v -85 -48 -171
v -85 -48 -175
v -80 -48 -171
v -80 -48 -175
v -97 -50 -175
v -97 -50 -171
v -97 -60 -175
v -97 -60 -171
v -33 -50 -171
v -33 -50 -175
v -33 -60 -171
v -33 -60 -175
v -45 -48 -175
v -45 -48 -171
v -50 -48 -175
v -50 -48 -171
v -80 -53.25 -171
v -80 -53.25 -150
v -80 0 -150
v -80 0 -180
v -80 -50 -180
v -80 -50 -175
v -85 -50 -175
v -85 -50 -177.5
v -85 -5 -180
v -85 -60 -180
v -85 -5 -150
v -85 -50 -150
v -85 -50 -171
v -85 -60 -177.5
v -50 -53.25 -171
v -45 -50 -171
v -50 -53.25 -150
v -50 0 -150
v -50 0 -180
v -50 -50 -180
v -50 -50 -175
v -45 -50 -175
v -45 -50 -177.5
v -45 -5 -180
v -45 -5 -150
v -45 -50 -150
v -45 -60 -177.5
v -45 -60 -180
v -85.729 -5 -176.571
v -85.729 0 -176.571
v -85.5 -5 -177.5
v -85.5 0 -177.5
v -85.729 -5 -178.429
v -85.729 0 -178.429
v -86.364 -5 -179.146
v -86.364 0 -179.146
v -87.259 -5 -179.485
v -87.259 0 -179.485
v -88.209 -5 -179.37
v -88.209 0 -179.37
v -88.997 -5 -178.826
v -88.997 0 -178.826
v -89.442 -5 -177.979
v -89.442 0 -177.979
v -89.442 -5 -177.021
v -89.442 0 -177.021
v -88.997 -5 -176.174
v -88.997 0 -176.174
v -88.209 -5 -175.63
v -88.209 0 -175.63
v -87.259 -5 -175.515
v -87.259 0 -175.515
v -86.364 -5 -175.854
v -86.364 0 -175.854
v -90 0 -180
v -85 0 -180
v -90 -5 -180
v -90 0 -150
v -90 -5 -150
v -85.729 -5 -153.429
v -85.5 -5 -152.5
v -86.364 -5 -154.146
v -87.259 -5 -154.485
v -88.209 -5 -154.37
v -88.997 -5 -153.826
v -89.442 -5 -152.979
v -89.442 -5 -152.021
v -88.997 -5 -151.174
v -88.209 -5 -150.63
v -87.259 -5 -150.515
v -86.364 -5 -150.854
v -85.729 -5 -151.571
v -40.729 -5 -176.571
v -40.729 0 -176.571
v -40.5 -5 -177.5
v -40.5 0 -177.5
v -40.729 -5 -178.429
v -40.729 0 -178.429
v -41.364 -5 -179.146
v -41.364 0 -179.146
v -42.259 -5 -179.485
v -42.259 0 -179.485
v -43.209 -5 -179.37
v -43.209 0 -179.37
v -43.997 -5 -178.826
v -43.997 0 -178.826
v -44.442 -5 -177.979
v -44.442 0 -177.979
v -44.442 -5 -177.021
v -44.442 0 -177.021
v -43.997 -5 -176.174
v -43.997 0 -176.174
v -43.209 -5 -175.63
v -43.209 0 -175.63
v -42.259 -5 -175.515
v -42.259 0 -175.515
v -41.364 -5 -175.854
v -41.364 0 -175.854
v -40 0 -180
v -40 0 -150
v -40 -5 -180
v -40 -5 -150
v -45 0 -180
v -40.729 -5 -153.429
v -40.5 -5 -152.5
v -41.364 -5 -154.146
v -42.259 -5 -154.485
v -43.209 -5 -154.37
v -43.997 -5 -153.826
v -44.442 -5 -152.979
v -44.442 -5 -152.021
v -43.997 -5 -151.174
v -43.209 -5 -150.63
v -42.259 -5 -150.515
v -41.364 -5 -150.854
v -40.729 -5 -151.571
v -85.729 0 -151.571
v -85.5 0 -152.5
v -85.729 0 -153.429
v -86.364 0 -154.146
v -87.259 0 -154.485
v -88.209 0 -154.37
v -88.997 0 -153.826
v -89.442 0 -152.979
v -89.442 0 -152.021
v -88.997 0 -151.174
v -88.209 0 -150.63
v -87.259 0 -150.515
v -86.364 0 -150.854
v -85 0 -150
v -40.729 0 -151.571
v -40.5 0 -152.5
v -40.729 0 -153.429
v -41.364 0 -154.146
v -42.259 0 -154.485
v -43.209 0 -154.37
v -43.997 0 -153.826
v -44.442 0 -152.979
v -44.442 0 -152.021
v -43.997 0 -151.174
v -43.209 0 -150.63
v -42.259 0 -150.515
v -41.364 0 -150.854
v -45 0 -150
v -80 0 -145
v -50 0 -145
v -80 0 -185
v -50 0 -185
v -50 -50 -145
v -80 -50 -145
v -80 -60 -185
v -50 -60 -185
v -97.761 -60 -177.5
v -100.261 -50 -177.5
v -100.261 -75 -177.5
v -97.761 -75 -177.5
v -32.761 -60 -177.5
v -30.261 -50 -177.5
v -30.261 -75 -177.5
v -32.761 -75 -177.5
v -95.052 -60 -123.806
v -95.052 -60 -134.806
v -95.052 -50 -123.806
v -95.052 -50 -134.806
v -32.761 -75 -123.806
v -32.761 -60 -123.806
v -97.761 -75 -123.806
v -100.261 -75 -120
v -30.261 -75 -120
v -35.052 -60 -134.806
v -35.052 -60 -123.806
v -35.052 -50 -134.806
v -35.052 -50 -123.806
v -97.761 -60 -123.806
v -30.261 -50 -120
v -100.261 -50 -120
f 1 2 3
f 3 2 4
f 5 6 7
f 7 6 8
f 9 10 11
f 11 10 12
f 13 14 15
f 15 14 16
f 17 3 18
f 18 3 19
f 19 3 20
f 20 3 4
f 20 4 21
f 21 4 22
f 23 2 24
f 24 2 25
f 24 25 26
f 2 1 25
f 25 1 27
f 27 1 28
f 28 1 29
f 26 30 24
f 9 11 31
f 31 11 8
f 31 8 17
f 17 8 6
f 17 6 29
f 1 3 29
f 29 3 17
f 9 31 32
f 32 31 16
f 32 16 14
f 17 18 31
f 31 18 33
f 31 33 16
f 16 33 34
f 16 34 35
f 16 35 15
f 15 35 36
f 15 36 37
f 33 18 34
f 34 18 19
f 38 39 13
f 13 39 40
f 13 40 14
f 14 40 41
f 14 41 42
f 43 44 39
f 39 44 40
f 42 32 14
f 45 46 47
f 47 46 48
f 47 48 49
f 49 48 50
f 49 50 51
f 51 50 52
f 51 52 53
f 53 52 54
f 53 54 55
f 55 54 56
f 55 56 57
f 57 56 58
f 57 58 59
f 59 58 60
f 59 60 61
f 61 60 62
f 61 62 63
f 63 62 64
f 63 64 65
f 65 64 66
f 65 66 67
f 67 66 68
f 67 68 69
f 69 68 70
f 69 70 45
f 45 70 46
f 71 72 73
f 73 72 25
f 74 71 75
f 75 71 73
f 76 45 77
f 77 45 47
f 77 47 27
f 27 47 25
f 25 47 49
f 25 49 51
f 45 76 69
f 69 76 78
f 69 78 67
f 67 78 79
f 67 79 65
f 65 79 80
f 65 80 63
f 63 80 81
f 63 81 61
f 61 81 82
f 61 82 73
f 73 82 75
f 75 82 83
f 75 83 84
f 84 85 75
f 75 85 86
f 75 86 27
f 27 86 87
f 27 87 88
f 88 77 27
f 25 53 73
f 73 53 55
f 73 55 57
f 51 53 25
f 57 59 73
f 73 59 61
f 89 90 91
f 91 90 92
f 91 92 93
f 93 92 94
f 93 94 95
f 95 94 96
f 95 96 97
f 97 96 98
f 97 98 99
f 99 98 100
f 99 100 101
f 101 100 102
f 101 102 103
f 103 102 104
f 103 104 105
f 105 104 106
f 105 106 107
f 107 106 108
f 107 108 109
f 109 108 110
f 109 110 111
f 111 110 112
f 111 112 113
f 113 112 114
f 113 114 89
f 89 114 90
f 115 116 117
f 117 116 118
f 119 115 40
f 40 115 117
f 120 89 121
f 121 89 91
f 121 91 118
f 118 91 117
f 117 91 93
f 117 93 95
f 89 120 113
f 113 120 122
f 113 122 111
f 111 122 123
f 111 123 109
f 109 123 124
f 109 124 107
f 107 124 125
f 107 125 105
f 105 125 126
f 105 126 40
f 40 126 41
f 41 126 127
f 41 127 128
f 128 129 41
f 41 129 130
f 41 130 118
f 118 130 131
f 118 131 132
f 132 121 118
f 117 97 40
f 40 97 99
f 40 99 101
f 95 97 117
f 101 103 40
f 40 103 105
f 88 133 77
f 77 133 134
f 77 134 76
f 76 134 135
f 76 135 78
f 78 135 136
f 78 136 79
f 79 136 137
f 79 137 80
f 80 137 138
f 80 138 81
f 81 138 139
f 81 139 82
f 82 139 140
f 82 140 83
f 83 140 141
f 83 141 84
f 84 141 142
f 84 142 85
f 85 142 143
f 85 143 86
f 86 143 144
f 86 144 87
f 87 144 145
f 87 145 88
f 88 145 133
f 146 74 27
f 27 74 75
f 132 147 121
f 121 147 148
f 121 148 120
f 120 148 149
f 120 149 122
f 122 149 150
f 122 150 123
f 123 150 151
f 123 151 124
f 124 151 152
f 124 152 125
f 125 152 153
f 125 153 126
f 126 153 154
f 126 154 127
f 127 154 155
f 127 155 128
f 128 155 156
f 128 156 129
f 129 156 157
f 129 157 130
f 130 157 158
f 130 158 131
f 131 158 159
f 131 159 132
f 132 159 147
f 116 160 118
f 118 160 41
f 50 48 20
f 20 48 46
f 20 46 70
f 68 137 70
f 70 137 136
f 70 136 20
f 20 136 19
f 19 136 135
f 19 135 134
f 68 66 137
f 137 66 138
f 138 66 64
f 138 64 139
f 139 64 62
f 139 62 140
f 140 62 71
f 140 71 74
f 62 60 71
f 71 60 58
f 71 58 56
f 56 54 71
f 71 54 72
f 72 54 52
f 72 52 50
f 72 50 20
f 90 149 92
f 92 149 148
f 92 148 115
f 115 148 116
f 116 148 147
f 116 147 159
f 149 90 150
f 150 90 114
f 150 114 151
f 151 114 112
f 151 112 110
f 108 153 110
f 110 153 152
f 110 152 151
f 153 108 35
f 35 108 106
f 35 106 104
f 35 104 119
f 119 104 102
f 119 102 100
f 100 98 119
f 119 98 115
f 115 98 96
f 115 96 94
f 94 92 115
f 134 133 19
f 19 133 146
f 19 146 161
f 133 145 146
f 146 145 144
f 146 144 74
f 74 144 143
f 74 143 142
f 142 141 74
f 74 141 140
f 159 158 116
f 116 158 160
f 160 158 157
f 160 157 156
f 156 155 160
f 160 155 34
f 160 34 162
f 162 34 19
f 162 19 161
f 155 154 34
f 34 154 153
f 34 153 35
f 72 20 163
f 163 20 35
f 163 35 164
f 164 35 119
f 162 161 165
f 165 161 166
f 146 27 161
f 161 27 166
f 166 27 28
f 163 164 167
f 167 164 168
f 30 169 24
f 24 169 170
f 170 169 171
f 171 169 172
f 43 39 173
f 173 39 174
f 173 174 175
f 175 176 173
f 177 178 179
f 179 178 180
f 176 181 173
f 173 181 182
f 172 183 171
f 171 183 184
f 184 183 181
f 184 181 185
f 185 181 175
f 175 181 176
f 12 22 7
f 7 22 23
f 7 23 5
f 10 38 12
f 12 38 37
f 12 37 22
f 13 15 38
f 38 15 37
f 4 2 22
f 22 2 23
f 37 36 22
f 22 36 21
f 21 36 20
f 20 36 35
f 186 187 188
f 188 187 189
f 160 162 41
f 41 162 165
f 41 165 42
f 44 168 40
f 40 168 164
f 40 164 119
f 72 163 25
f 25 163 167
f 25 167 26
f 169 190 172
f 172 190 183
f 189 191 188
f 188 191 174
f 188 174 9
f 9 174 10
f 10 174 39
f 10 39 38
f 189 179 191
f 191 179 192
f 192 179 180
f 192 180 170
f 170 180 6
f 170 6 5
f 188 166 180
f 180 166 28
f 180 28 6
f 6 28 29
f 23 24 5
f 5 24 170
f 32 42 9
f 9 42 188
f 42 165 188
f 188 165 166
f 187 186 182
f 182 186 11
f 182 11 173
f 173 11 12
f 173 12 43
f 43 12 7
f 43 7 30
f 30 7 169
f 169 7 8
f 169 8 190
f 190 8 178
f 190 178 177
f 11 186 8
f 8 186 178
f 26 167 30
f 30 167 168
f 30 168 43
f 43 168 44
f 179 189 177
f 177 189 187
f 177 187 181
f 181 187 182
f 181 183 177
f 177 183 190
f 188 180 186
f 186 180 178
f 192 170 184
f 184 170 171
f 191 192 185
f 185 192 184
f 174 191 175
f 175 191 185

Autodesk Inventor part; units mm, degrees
ref_plane "YZ Plane" through (0, 0, 0) normal (1, 0, 0) x (0, 1, 0)
sketch "Boceto1" plane through (0, 0, 0) normal (0, 1, 0) x (-1, 0, 0)
  line L0 (0, 0) -> (0, -154)
  line L1 (35, -185) -> (95, -185)
  line L2 (130, -154) -> (130, 0)
  line L3 (130, 0) -> (0, 0)
  line L4 (0, 0) -> (0, -154) construction
  line L5 (65, -185) -> (95, -185) construction
  line L6 (95, -185) -> (95, -206.4869) construction
  line L7 (95, -206.4869) -> (35, -206.4869) construction
  line L8 (35, -206.4869) -> (35, -185) construction
  line L9 (0, -154) -> (35, -185)
  line L10 (95, -185) -> (130, -154)
  line L11 (61.4516, 0) -> (61.4516, -5) construction
  line L12 (130, -81.3037) -> (125, -81.3037) construction
  line L13 (0, -85.0807) -> (5, -85.0807) construction
  line L14 (125, -5) -> (5, -5)
  line L15 (5, -5) -> (5, -148.3548)
  line L16 (125, -148.3548) -> (125, -5)
  line L17 (112.5, -169.5) -> (109.1848, -165.7571) construction
  line L18 (65, -185) -> (65, -180) construction
  line L19 (17.5, -169.5) -> (20.8152, -165.7571) construction
  line L20 (20.8152, -165.7571) -> (5, -151.7493)
  line L21 (20.8152, -165.7571) -> (36.8959, -180)
  line L22 (36.8959, -180) -> (93.1041, -180)
  line L23 (93.1041, -180) -> (125, -151.7493)
  line L24 (125, -151.7493) -> (125, -148.3548)
  line L25 (5, -148.3548) -> (5, -151.7493)
  dimension "d2" = 154
  dimension "d3" = 30
  dimension "d4" = 60
  dimension "d5" = 5
  dimension "d6" = 5
  dimension "d7" = 5
  dimension "d8" = 5
  dimension "d9" = 5
  dimension "d10" = 5
extrude "Extrusión1" add sketch "Boceto1" along normal blind 3 contours L16 L24 L23 L22 L21 L20 L25 L15 L14
extrude "Extrusión2" add sketch "Boceto1" along normal blind 35
ref_plane "Plano de trabajo1" through (0, 20, 0) normal (0, 1, 0) x (-1, 0, 0)
sketch "Boceto2" plane through (0, 20, 0) normal (0, 1, 0) x (-1, 0, 0)
  line L0 (0, 0) -> (0, -154) construction
  line L1 (0, 0) -> (0, -26.749) construction
  line L2 (130, -154) -> (130, 0) construction
  line L3 (125, -151.7493) -> (93.1041, -180) construction
  line L4 (125, -151.7493) -> (5, -151.7493) construction
  line L5 (65, -151.7493) -> (65, -26.749) construction
  line L6 (125, -89.2492) -> (5, -89.2492) construction
  line L7 (5, -151.7493) -> (5, -5) construction
  line L8 (125, -26.749) -> (125, -31.749) construction
  line L9 (125, -31.749) -> (120, -31.749) construction
  line L10 (120, -31.749) -> (120, -26.749) construction
  line L11 (125, -31.749) -> (120, -26.749) construction
  line L12 (120, -31.749) -> (125, -26.749) construction
  line L13 (125, -31.749) -> (125, -26.749)
  arc A0 (120, -26.749) -> (125, -31.749) centre (122.5, -29.249) ccw
  line L14 (5, -26.749) -> (5, -31.749) construction
  line L15 (5, -31.749) -> (5, -26.749)
  arc A1 (5, -31.749) -> (10, -26.749) centre (7.5, -29.249) ccw
  arc A2 (125, -26.749) -> (120.5, -32.1645) centre (122.5, -29.249) ccw
  arc A3 (10.6306, -27.606) -> (5, -26.749) centre (7.5, -29.249) ccw
  line L16 (5, -26.749) -> (5, -173.4983) construction
  line L17 (125, -151.7493) -> (125, -146.7493) construction
  line L18 (120, -146.7493) -> (125, -151.7493) construction
  line L19 (125, -146.7493) -> (125, -151.7493)
  arc A4 (125, -146.7493) -> (120, -151.7493) centre (122.5, -149.2493) ccw
  arc A5 (10, -151.7493) -> (5, -146.7493) centre (7.5, -149.2493) ccw
  line L20 (5, -151.7493) -> (5, -146.7493) construction
  line L21 (5, -146.7493) -> (5, -151.7493)
  arc A6 (120.5, -146.3339) -> (125, -151.7493) centre (122.5, -149.2493) ccw
  arc A7 (5, -151.7493) -> (10.6306, -150.8923) centre (7.5, -149.2493) ccw
  circle A8 centre (7.5, -29.249) radius 2.5
  circle A9 centre (122.5, -29.249) radius 2.5
  circle A10 centre (122.5, -149.2493) radius 2.5
  circle A11 centre (7.5, -149.2493) radius 2.5
  point P0 (10, -151.7493)
  point P1 (10, -26.749)
  point P2 (120, -26.749)
  dimension "d16" = 26.749
  dimension "d43" = 5
  dimension "d44" = 5
  dimension "d45" = 5
  dimension "d46" = 5
extrude "Extrusión3" add sketch "Boceto2" against normal blind 17 contours A9 | A0 A2 L13 | A8 | L15 A3 A1 | A10 | L19 A6 A4 | A11 | A7 L21 A5
extrude "Extrusión4" cut sketch "Boceto2" against normal through all contours A9 | A8 | A10 | A11
sketch "Boceto3" plane through (0, 3, 0) normal (0, 1, 0) x (1, 0, 0)
  line L0 (-125, 5) -> (-5, 5) construction
  line L1 (-65, 5) -> (-110, 5) construction
  line L2 (-110, 5) -> (-110, 15) construction
  line L3 (-110, 15) -> (-20, 15)
  line L4 (-20, 15) -> (-20, 139.5644)
  line L5 (-110, 139.5644) -> (-110, 15)
  line L6 (-106.9205, 15) -> (-103.9205, 15)
  line L7 (-20, 139.5644) -> (-20, 15)
  line L8 (-110, 15) -> (-20, 15)
  line L9 (-110, 15) -> (-110, 139.5644)
  line L10 (-83.4405, 15) -> (-81.4405, 15)
  line L11 (-77.5705, 15) -> (-75.5705, 15)
  line L12 (-87.3105, 15) -> (-89.3105, 15)
  line L13 (-93.1805, 15) -> (-95.1805, 15)
  line L14 (-98.0505, 15) -> (-100.0505, 15)
  line L15 (-103.9205, 15) -> (-106.9205, 15)
  line L16 (-71.7005, 15) -> (-69.7005, 15)
  line L17 (-65.8305, 15) -> (-63.8305, 15)
  line L18 (-59.9605, 15) -> (-57.9605, 15)
  line L19 (-54.0905, 15) -> (-52.0905, 15)
  line L20 (-48.2205, 15) -> (-46.2205, 15)
  line L21 (-42.3505, 15) -> (-40.3505, 15)
  line L22 (-36.4805, 15) -> (-34.4805, 15)
  line L23 (-30.6105, 15) -> (-28.6105, 15)
  line L24 (-24.7405, 15) -> (-22.7405, 15)
  line L25 (-35, 185) -> (-95, 185) projected
  line L26 (-20, 139.5644) -> (-110, 139.5644)
  line L27 (-103.9205, 15) -> (-103.9205, 139.5644)
  line L28 (-106.9205, 139.5644) -> (-106.9205, 15)
  line L29 (-100.9205, 15) -> (-100.9205, 139.5644)
  line L30 (-103.9205, 139.5644) -> (-103.9205, 15)
  line L31 (-97.9205, 15) -> (-97.9205, 139.5644)
  line L32 (-100.9205, 139.5644) -> (-100.9205, 15)
  line L33 (-94.9205, 15) -> (-94.9205, 139.5644)
  line L34 (-97.9205, 139.5644) -> (-97.9205, 15)
  line L35 (-91.9205, 15) -> (-91.9205, 139.5644)
  line L36 (-94.9205, 139.5644) -> (-94.9205, 15)
  line L37 (-88.9205, 15) -> (-88.9205, 139.5644)
  line L38 (-91.9205, 139.5644) -> (-91.9205, 15)
  line L39 (-85.9205, 15) -> (-85.9205, 139.5644)
  line L40 (-88.9205, 139.5644) -> (-88.9205, 15)
  line L41 (-82.9205, 15) -> (-82.9205, 139.5644)
  line L42 (-85.9205, 139.5644) -> (-85.9205, 15)
  line L43 (-79.9205, 15) -> (-79.9205, 139.5644)
  line L44 (-82.9205, 139.5644) -> (-82.9205, 15)
  line L45 (-76.9205, 15) -> (-76.9205, 139.5644)
  line L46 (-79.9205, 139.5644) -> (-79.9205, 15)
  line L47 (-73.9205, 15) -> (-73.9205, 139.5644)
  line L48 (-76.9205, 139.5644) -> (-76.9205, 15)
  line L49 (-70.9205, 15) -> (-70.9205, 139.5644)
  line L50 (-73.9205, 139.5644) -> (-73.9205, 15)
  line L51 (-67.9205, 15) -> (-67.9205, 139.5644)
  line L52 (-70.9205, 139.5644) -> (-70.9205, 15)
  line L53 (-64.9205, 15) -> (-64.9205, 139.5644)
  line L54 (-67.9205, 139.5644) -> (-67.9205, 15)
  line L55 (-61.9205, 15) -> (-61.9205, 139.5644)
  line L56 (-64.9205, 139.5644) -> (-64.9205, 15)
  line L57 (-58.9205, 15) -> (-58.9205, 139.5644)
  line L58 (-61.9205, 139.5644) -> (-61.9205, 15)
  line L59 (-55.9205, 15) -> (-55.9205, 139.5644)
  line L60 (-58.9205, 139.5644) -> (-58.9205, 15)
  line L61 (-52.9205, 15) -> (-52.9205, 139.5644)
  line L62 (-55.9205, 139.5644) -> (-55.9205, 15)
  line L63 (-49.9205, 15) -> (-49.9205, 139.5644)
  line L64 (-52.9205, 139.5644) -> (-52.9205, 15)
  line L65 (-46.9205, 15) -> (-46.9205, 139.5644)
  line L66 (-49.9205, 139.5644) -> (-49.9205, 15)
  line L67 (-43.9205, 15) -> (-43.9205, 139.5644)
  line L68 (-46.9205, 139.5644) -> (-46.9205, 15)
  line L69 (-40.9205, 15) -> (-40.9205, 139.5644)
  line L70 (-43.9205, 139.5644) -> (-43.9205, 15)
  line L71 (-37.9205, 15) -> (-37.9205, 139.5644)
  line L72 (-40.9205, 139.5644) -> (-40.9205, 15)
  line L73 (-34.9205, 15) -> (-34.9205, 139.5644)
  line L74 (-37.9205, 139.5644) -> (-37.9205, 15)
  line L75 (-31.9205, 15) -> (-31.9205, 139.5644)
  line L76 (-34.9205, 139.5644) -> (-34.9205, 15)
  line L77 (-28.9205, 15) -> (-28.9205, 139.5644)
  line L78 (-31.9205, 139.5644) -> (-31.9205, 15)
  line L79 (-25.9205, 15) -> (-25.9205, 139.5644)
  line L80 (-28.9205, 139.5644) -> (-28.9205, 15)
  line L81 (-22.9205, 15) -> (-22.9205, 139.5644)
  line L82 (-25.9205, 139.5644) -> (-25.9205, 15)
  point P0 (0, 0)
  dimension "d24" = 45
  dimension "d25" = 10
  dimension "d32" = 5.87
  dimension "d47" = 3
  dimension "d50" = 3
extrude "Extrusión5" cut sketch "Boceto3" against normal blind 10 contours L5 L26 L28 L3 | L27 L26 L29 L3 | L26 L33 L3 L31 | L26 L37 L3 L35 | L26 L41 L3 L39 | L26 L45 L3 L43 | L26 L49 L3 L47 | L26 L53 L3 L51 | L26 L57 L3 L55 | L26 L61 L3 L59 | L26 L65 L3 L63 | L26 L69 L3 L67 | L26 L73 L3 L71 | L26 L77 L3 L75 | L26 L81 L3 L79
fillet "Empalme1" radius 5 4 edges at (-130, 17.5, 0) (0, 17.5, 0) (0, 17.5, -154) (-130, 17.5, -154)
fillet "Empalme2" radius 5 2 edges at (-95, 17.5, -185) (-35, 17.5, -185)
sketch "Sketch5" plane through (-125, 3, -146.7493) normal (1, 0, 0) x (0, 0, -1)
  line L0 (0, 0) -> (-115.0003, 0) construction
  line L1 (-110.8969, 0) -> (-110.8969, 17.0593) construction
  line L2 (-4.4814, 0) -> (-4.4814, 32) construction
  line L3 (-141.7493, 32) -> (5, 32) construction
  line L4 (-110.8969, 0) -> (-4.4814, 0)
  line L5 (-4.4814, 0) -> (-4.4814, 25.5232)
  line L6 (-4.4814, 25.5232) -> (-110.8969, 25.5232)
  line L7 (-110.8969, 25.5232) -> (-110.8969, 0)
  line L8 (-110.8969, 25.5232) -> (-4.4814, 25.5232)
  line L9 (-4.4814, 25.5232) -> (-4.4814, 52.7113)
  line L10 (-4.4814, 52.7113) -> (-110.8969, 52.7113)
  line L11 (-110.8969, 52.7113) -> (-110.8969, 25.5232)
  point P0 (-146.7493, -3)
  point P1 (-115.0003, 17)
  point P2 (0, 17)
  point P3 (5, 32)
extrude "Extrusion6" cut sketch "Sketch5" against normal through all
sketch "Sketch6" plane through (-122.5, 20, -29.249) normal (0, 1, 0) x (1, 0, 0)
  arc A0 (-2.5, -2.5) -> (-2.5, 2.5) centre (0, 0) ccw projected
  circle A1 centre (0, 0) radius 2.5 projected
  arc A2 (-2.5, 117.5003) -> (-2.1798, 122.784) centre (0, 120.0003) ccw projected
  circle A3 centre (0, 120.0003) radius 2.5 projected
  arc A4 (117.1798, 122.784) -> (117.5, 117.5003) centre (115, 120.0003) ccw projected
  circle A5 centre (115, 120.0003) radius 2.5 projected
  circle A6 centre (115, 0) radius 2.5 projected
  arc A7 (117.5, 2.5) -> (117.5, -2.5) centre (115, 0) ccw projected
  circle A8 centre (0, 0) radius 2.5
  circle A9 centre (0, 0) radius 3.5355
  circle A10 centre (0, 120.0003) radius 2.5
  circle A11 centre (0, 120.0003) radius 3.5355
  circle A12 centre (115, 120.0003) radius 2.5
  circle A13 centre (115, 120.0003) radius 3.5355
  circle A14 centre (115, 0) radius 2.5
  circle A15 centre (115, 0) radius 3.5355
  point P0 (122.5, -29.249)
  point P1 (-2.5, 0)
  point P2 (-2.5, 120.0003)
  point P3 (117.5, 120.0003)
  point P4 (117.5, 0)
  point P5 (-2.5, -2.5)
  point P6 (-2.5, 117.5003)
  point P7 (117.5, 117.5003)
  point P8 (117.5, -2.5)
extrude "Extrusion7" add sketch "Sketch6" along normal blind 15
sketch "Sketch7" plane through (0, 0, 0) normal (0, -1, 0) x (1, 0, 0)
  line L0 (-36.8959, -185) -> (-93.1041, -185) construction
  line L1 (-65, -185) -> (-65, 0) construction
  line L2 (-125, 0) -> (-5, 0) construction
  line L3 (-130, -35.8525) -> (-130, -142.2679) construction
  line L4 (-130, -142.2679) -> (0, -142.2679) construction
  line L5 (-65, -185) -> (-85, -185) construction
  line L6 (-65, -185) -> (-45, -185) construction
  line L7 (-45, -185) -> (-45, -145) construction
  line L8 (-45, -145) -> (-85, -145) construction
  line L9 (-45, -145) -> (-85, -145)
  line L10 (-85, -145) -> (-85, -185)
  line L11 (-85, -185) -> (-45, -185)
  line L12 (-45, -185) -> (-45, -145)
  point P0 (0, 0)
  dimension "d57" = 20
  dimension "d58" = 20
  dimension "d59" = 40
extrude "Extrusion8" add sketch "Sketch7" along normal blind 50
sketch "Sketch8" plane through (0, -50, 0) normal (0, -1, 0) x (1, 0, 0)
  line L0 (-45, -185) -> (-45, -145) construction
  line L1 (-45, -145) -> (-85.5281, -185) construction
  line L2 (-36.8959, -185) -> (-93.1041, -185) construction
  line L3 (-85, -145) -> (-85, -185) construction
  line L4 (-85, -145) -> (-45.5212, -185) construction
  line L5 (-32.7606, -175) -> (-32.7606, -137.5)
  line L6 (-32.7606, -137.5) -> (-97.7606, -137.5)
  line L7 (-97.7606, -137.5) -> (-97.7606, -175)
  line L8 (-97.7606, -192.5) -> (-32.7606, -137.5) construction
  line L9 (-32.7606, -192.5) -> (-97.7606, -137.5) construction
  line L10 (-30.2606, -195) -> (-100.2606, -195)
  line L11 (-100.2606, -195) -> (-100.2606, -135)
  line L12 (-100.2606, -135) -> (-30.2606, -195) construction
  line L13 (-30.2606, -135) -> (-100.2606, -195) construction
  line L14 (-65.2606, -135) -> (-65.2606, -130) construction
  line L15 (-65.2606, -130) -> (-100.2606, -130)
  line L16 (-100.2606, -130) -> (-100.2606, -135)
  line L17 (-30.2606, -135) -> (-30.2606, -130)
  line L18 (-30.2606, -130) -> (-65.2606, -130)
  line L19 (-65.2606, -130) -> (-65.2606, -125) construction
  line L20 (-64.9205, -139.5644) -> (-64.9205, -15) construction
  line L21 (-65.2606, -125) -> (-100.2606, -125)
  line L22 (-100.9205, -139.5644) -> (-100.9205, -15) projected
  line L23 (-100.2606, -130) -> (-100.2606, -125)
  line L24 (-65.2606, -125) -> (-30.2606, -125)
  line L25 (-30.2606, -125) -> (-30.2606, -130)
  line L26 (-65.2606, -125) -> (-65.2606, -120) construction
  line L27 (-100.2606, -125) -> (-100.2606, -120)
  line L28 (-100.2606, -120) -> (-65.2606, -120)
  line L29 (-65.2606, -120) -> (-30.2606, -120)
  line L30 (-30.2606, -120) -> (-30.2606, -125)
  line L31 (-100.2606, -195) -> (-100.2606, -175) construction
  line L32 (-97.7606, -175) -> (-32.7606, -175)
  line L33 (-97.7606, -192.5) -> (-97.3439, -192.5)
  line L34 (-33.1773, -192.5) -> (-32.7606, -192.5)
  line L35 (-32.7606, -175) -> (-32.7606, -177.5) construction
  line L36 (-30.2606, -177.5) -> (-100.2606, -177.5)
  line L37 (-30.2606, -135) -> (-30.2606, -195)
  line L38 (-28.9205, -15) -> (-28.9205, -139.5644) projected
  point P0 (0, 0)
  point P1 (-65.2606, -165)
  point P2 (-64.9205, -15)
  dimension "d62" = 65
  dimension "d63" = 55
  dimension "d64" = 70
  dimension "d65" = 60
  dimension "d96" = 5
  dimension "d101" = 5
  dimension "d112" = 20
  dimension "d113" = 2.5
extrude "Extrusion9" add sketch "Sketch8" along normal blind 10 contours L32 L7 L6 L5
extrude "Extrusion10" add sketch "Sketch8" along normal blind 25 contours L18 L15 L23 L21 L24 L25 | L24 L21 L27 L28 L29 L30
chamfer "Chamfer3" distance 5 angle 45 2 edges at (-85, -25, -145) (-45, -25, -145)
ref_plane "Work Plane2" through (0, -75, 0) normal (0, -1, 0) x (1, 0, 0)
chamfer "Chamfer4" distance 5 angle 45 2 edges at (-45, -25, -185) (-85, -25, -185)
sketch "Sketch12" plane through (0, -75, 0) normal (0, -1, 0) x (1, 0, 0)
  point P0 (0, 0)
sketch "Sketch13" plane through (0, -75, 0) normal (0, -1, 0) x (1, 0, 0)
  line L0 (-30.2606, -125) -> (-100.2606, -125) construction
  line L1 (-97.7606, -137.5) -> (-32.7606, -137.5) construction
  line L2 (-65.2606, -137.5) -> (-65.2606, -125) construction
  line L3 (-97.7606, -137.5) -> (-97.7606, -125) construction
  line L4 (-32.7606, -137.5) -> (-32.7606, -125) construction
  line L5 (-97.7606, -131.25) -> (-32.7606, -131.25) construction
  line L6 (-95.2606, -136.25) -> (-35.2606, -126.25) construction
  line L7 (-35.2606, -136.25) -> (-95.2606, -126.25) construction
  line L8 (-30.2606, -120) -> (-100.2606, -120) construction
  line L9 (-97.7606, -125) -> (-97.9205, -120) construction
  line L10 (-97.9205, -15) -> (-97.9205, -139.5644) construction
  line L11 (-35.2606, -126.25) -> (-35.2606, -120) construction
  line L12 (-32.7606, -137.5) -> (-32.7606, -192.5) construction
  line L13 (-97.7606, -120) -> (-32.7606, -137.5) construction
  line L14 (-97.7606, -137.5) -> (-31.9205, -120) construction
  line L15 (-31.9205, -15) -> (-31.9205, -139.5644) construction
  line L16 (-95.0519, -133.8062) -> (-35.0519, -133.8062)
  line L17 (-35.0519, -133.8062) -> (-35.0519, -123.8062)
  line L18 (-35.0519, -123.8062) -> (-95.0519, -123.8062)
  line L19 (-95.0519, -123.8062) -> (-95.0519, -133.8062)
  line L20 (-95.0519, -133.8062) -> (-35.0519, -123.8062) construction
  line L21 (-35.0519, -133.8062) -> (-95.0519, -123.8062) construction
  point P0 (0, 0)
  point P1 (-65.2606, -131.25)
  point P2 (-65.0519, -128.8062)
  dimension "d102" = 60
  dimension "d103" = 10
extrude "Extrusion12" cut sketch "Sketch13" against normal blind 25
sketch "Sketch14" plane through (0, -75, 0) normal (0, -1, 0) x (1, 0, 0)
  line L0 (-32.7606, -137.5) -> (-32.7606, -192.5) projected
  line L1 (-95.0519, -130) -> (-95.0519, -123.8062) projected
  line L2 (-95.0519, -123.8062) -> (-35.0519, -123.8062) projected
  line L3 (-97.7606, -192.5) -> (-97.7606, -137.5) projected
  line L4 (-32.7606, -137.5) -> (-97.7606, -137.5)
  line L5 (-97.7606, -137.5) -> (-97.7606, -123.8062)
  line L6 (-97.7606, -123.8062) -> (-32.7606, -123.8062)
  line L7 (-32.7606, -123.8062) -> (-32.7606, -137.5)
  point P0 (0, 0)
  point P1 (-95.0519, -133.8062)
extrude "Extrusion13" cut sketch "Sketch14" against normal blind 15
sketch "Sketch16" plane through (0, -60, 0) normal (0, -1, 0) x (1, 0, 0)
  line L0 (-85, -150) -> (-85, -175) projected
  line L1 (-85, -150) -> (-80, -145) projected
  line L2 (-50, -145) -> (-80, -145) projected
  line L3 (-50, -145) -> (-45, -150) projected
  line L4 (-45, -175) -> (-45, -150) projected
  line L5 (-45, -180) -> (-50, -185) projected
  line L6 (-80, -185) -> (-50, -185) projected
  line L7 (-80, -185) -> (-85, -180) projected
  line L8 (-50, -150) -> (-80, -150)
  line L9 (-80, -150) -> (-80, -180)
  line L10 (-80, -180) -> (-50, -180)
  line L11 (-50, -180) -> (-50, -150)
  line L12 (-50, -150) -> (-80, -180) construction
  line L13 (-80, -150) -> (-50, -180) construction
  point P0 (0, 0)
  point P1 (-65, -165)
  dimension "d108" = 30
  dimension "d109" = 30
extrude "Extrusion15" cut sketch "Sketch16" against normal blind 60
sketch "Sketch17" plane through (-50, -60, -180) normal (-1, 0, 0) x (0, 0, 1)
  line L0 (30, 0) -> (5, 0) projected
  point P0 (180, 60)
  point P1 (0, 0)
extrude "Extrusion16" add sketch "Sketch8" along normal blind 25 contours L36 L11 L16 L15 L18 L17 L37
sketch "Sketch18" plane through (-50, -50, -177.5) normal (0, 0, -1) x (-1, 0, 0)
  line L0 (47.7606, -10) -> (47.7606, -25) projected
  line L1 (-17.2394, -10) -> (-17.2394, -25) projected
  line L2 (47.7606, -10) -> (-17.2394, -10)
  line L3 (-19.7394, 0) -> (-19.7394, -25) projected
  line L4 (-17.2394, -25) -> (-17.2394, -35.5392)
  line L5 (-17.2394, -35.5392) -> (47.7606, -35.5392)
  line L6 (47.7606, -35.5392) -> (47.7606, -25)
  point P0 (-50, 50)
extrude "Extrusion17" cut sketch "Sketch18" against normal blind 47.75
sketch "Sketch19" plane through (0, -50, 0) normal (0, -1, 0) x (1, 0, 0)
  line L0 (-80, -185) -> (-50, -185) projected
  line L1 (-80, -185) -> (-85, -180) projected
  line L2 (-85, -177.5) -> (-85, -180) projected
  line L3 (-80, -180) -> (-80, -177.5) projected
  line L4 (-50, -180) -> (-80, -180) projected
  line L5 (-50, -177.5) -> (-50, -180) projected
  line L6 (-45, -180) -> (-45, -177.5) projected
  line L7 (-45, -180) -> (-50, -185) projected
  line L8 (-45, -177.5) -> (-50, -177.5) projected
  line L9 (-80, -177.5) -> (-85, -177.5) projected
  line L10 (-80, -177.5) -> (-50, -177.5) projected
  line L11 (-50, -177.5) -> (-80, -177.5)
  point P0 (0, 0)
extrude "Extrusion18" add sketch "Sketch19" along normal blind 10
sketch "Sketch20" plane through (0, 0, 0) normal (0, -1, 0) x (1, 0, 0)
  line L0 (-85, -180) -> (-80, -185) projected
  line L1 (-80, -185) -> (-85, -180)
  line L2 (-80, -145) -> (-85, -150) projected
  line L3 (-85, -180) -> (-85, -150)
  line L4 (-85, -150) -> (-80, -145)
  line L5 (-80, -145) -> (-49.9656, -145)
  line L6 (-93.1041, -180) -> (-36.8959, -180) projected
  line L7 (-49.9656, -145) -> (-44.9656, -150)
  line L8 (-44.9656, -150) -> (-44.9656, -180)
  line L9 (-36.8959, -185) -> (-93.1041, -185) projected
  line L10 (-44.9656, -180) -> (-49.9656, -185)
  line L11 (-36.8959, -185) -> (-50, -185) projected
  line L12 (-49.9656, -185) -> (-36.8959, -185)
  line L13 (-36.8959, -185) -> (24.1886, -177.7709)
  line L14 (24.1886, -177.7709) -> (33.2133, -87.4202)
  line L15 (33.2133, -87.4202) -> (33.6029, -83.52)
  line L16 (33.6029, -83.52) -> (59.5118, 20.6859)
  arc A0 (54.7558, 22.225) -> (59.5118, 20.6859) centre (68.223, 55.7226) ccw
  line L17 (54.7558, 22.225) -> (-146.3613, 43.1407)
  arc A1 (-146.3613, 43.1407) -> (-154.6578, 39.9856) centre (-147.3809, 33.3364) ccw
  line L18 (-154.6578, 39.9856) -> (-200.8291, -46.8166)
  line L19 (-200.8291, -46.8166) -> (-163.556, -203.1842)
  line L20 (-163.556, -203.1842) -> (-92.4425, -201.8425)
  line L21 (-92.4425, -201.8425) -> (-85, -194.4)
  line L22 (-85, -194.4) -> (-80, -185)
  line L23 (-85, -180) -> (-85, -150)
  point P0 (0, 0)
extrude "Extrusion19" cut sketch "Sketch20" against normal through all contours L0 L22 L21 L20 L19 L18 A1 L17 A0 L16 L15 L14 L13 L9 L10 L8 L7 L5 L2 L3
sketch "Sketch21" plane through (-50, -60, -185) normal (0, 0, -1) x (-1, 0, 0)
  line L0 (-5, 10) -> (-5, 60) projected
  line L1 (-5, 60) -> (49.1313, 60)
  line L2 (30, 60) -> (0, 60) projected
  line L3 (49.1313, 60) -> (53.9419, 116.0083)
  arc A0 (25.0787, 120.8189) -> (53.9419, 116.0083) centre (69.7131, 299.6306) ccw
  line L4 (25.0787, 120.8189) -> (-113.7396, 139.0302)
  arc A1 (-113.7396, 139.0302) -> (-109.2726, 107.0745) centre (-53.6227, 131.1436) ccw
  line L5 (-109.2726, 107.0745) -> (-56.0721, 40.422)
  line L6 (-56.0721, 40.422) -> (-11.9959, 40.422)
  line L7 (-11.9959, 40.422) -> (-11.9959, 60)
  line L8 (-11.9959, 60) -> (-5, 60)
  point P0 (-50, 60)
extrude "Extrusion20" cut sketch "Sketch21" against normal through all
ref_plane "Work Plane3" through (-80, 0, -185) normal (0, 1, 0) x (1, 0, 0)
sketch "Sketch23" plane through (-80, 0, -185) normal (0, 1, 0) x (1, 0, 0)
  line L0 (-5, -5) -> (-10, -5)
  line L1 (-10, -5) -> (-10, -10)
  line L2 (-10, -10) -> (-5, -10)
  line L3 (-5, -10) -> (-5, -5)
  line L4 (-5, -35) -> (-5, -5) construction
  line L5 (-5, -20) -> (-15.783, -20) construction
  circle A0 centre (-7.5, -7.5) radius 2
  line L6 (-5, -35) -> (-10, -35)
  line L7 (-10, -35) -> (-10, -30)
  line L8 (-10, -30) -> (-5, -30)
  line L9 (-5, -30) -> (-5, -35)
  circle A1 centre (-7.5, -32.5) radius 2
  line L10 (35, -35) -> (35, -5) construction
  line L11 (35, -5) -> (40, -5)
  line L12 (40, -5) -> (40, -10)
  line L13 (40, -10) -> (35, -10)
  line L14 (35, -10) -> (35, -5)
  circle A2 centre (37.5, -7.5) radius 2
  line L15 (35, -20) -> (51.9517, -20) construction
  line L16 (35, -5) -> (35, -35) construction
  line L17 (35, -35) -> (40, -35)
  line L18 (40, -35) -> (40, -30)
  line L19 (40, -30) -> (35, -30)
  line L20 (35, -30) -> (35, -35)
  circle A3 centre (37.5, -32.5) radius 2
  point P0 (80, -185)
  dimension "d125" = 5
  dimension "d126" = 5
  dimension "d127" = 4
  dimension "d128" = 5
  dimension "d129" = 5
  dimension "d130" = 4
extrude "Extrusion21" add sketch "Sketch23" against normal blind 5
sketch "Sketch24" plane through (-45, 0, -175) normal (0, 0, 1) x (1, 0, 0)
  line L0 (0, -5) -> (0, 0) projected
  line L1 (5, -5) -> (0, -5) projected
  line L2 (0, 0) -> (5, 0) projected
  line L3 (0, -5) -> (0, 0) projected
  line L4 (5, -5) -> (0, -5) projected
  line L5 (5, 0) -> (5, -5) projected
  point P0 (45, 0)
extrude "Extrusion22" add sketch "Sketch24" along normal blind 20
sketch "Sketch25" plane through (-90, 0, -175) normal (0, 0, 1) x (1, 0, 0)
  line L0 (0, 0) -> (5, 0) projected
  line L1 (0, 0) -> (0, -5) projected
  line L2 (5, -5) -> (0, -5) projected
  line L3 (5, 0) -> (5, -5) projected
  point P0 (90, 0)
extrude "Extrusion23" add sketch "Sketch25" along normal blind 20
sketch "Sketch26" plane through (0, -60, 0) normal (0, -1, 0) x (1, 0, 0)
  line L0 (-80, -175) -> (-50, -175) projected
  line L1 (-80, -175) -> (-80, -150) projected
  line L2 (-50, -150) -> (-50, -175) projected
  line L3 (-32.7606, -177.5) -> (-32.7606, -123.8062) projected
  line L4 (-50, -175) -> (-50, -171) construction
  line L5 (-65, -175) -> (-33, -175) construction
  line L6 (-65, -175) -> (-96.8928, -172.3826) construction
  line L7 (-33, -175) -> (-97, -175)
  line L8 (-97, -175) -> (-97, -171)
  line L9 (-97, -171) -> (-33, -171)
  line L10 (-33, -171) -> (-33, -175)
  line L11 (-50, -171) -> (-80, -171)
  line L12 (-80, -171) -> (-80, -150)
  line L13 (-80, -150) -> (-50, -150)
  line L14 (-50, -150) -> (-50, -171)
  point P0 (0, 0)
  dimension "d137" = 4
  dimension "d138" = 32
  dimension "d139" = 32
  dimension "d140" = 64
extrude "Extrusion24" add sketch "Sketch26" against normal blind 6.75 contours L1 L13 L2 L9
extrude "Extrusion25" cut sketch "Sketch26" against normal blind 12 contours L7 L8 L9 L1 | L2 L9 L10 L7
sketch "Sketch27" plane through (0, -60, 0) normal (0, -1, 0) x (1, 0, 0)
  line L0 (-35.0519, -130) -> (-35.0519, -123.8062) projected
  line L1 (-35.0519, -123.8062) -> (-35.0519, -134.8062)
  line L2 (-95.0519, -123.8062) -> (-95.0519, -134.8062)
  line L3 (-95.0519, -134.8062) -> (-35.0519, -134.8062)
  line L4 (-35.0519, -130) -> (-38.8579, -126.9031)
  line L5 (-38.8579, -126.9031) -> (-80.7461, -125.972)
  line L6 (-80.7461, -125.972) -> (-93.5344, -126.9031)
  line L7 (-93.5344, -126.9031) -> (-95.0519, -130)
  point P0 (0, 0)
  dimension "d145" = 11
  dimension "d146" = 11
extrude "Extrusion26" cut sketch "Sketch27" against normal through all
properties part number "Soporte camara"
